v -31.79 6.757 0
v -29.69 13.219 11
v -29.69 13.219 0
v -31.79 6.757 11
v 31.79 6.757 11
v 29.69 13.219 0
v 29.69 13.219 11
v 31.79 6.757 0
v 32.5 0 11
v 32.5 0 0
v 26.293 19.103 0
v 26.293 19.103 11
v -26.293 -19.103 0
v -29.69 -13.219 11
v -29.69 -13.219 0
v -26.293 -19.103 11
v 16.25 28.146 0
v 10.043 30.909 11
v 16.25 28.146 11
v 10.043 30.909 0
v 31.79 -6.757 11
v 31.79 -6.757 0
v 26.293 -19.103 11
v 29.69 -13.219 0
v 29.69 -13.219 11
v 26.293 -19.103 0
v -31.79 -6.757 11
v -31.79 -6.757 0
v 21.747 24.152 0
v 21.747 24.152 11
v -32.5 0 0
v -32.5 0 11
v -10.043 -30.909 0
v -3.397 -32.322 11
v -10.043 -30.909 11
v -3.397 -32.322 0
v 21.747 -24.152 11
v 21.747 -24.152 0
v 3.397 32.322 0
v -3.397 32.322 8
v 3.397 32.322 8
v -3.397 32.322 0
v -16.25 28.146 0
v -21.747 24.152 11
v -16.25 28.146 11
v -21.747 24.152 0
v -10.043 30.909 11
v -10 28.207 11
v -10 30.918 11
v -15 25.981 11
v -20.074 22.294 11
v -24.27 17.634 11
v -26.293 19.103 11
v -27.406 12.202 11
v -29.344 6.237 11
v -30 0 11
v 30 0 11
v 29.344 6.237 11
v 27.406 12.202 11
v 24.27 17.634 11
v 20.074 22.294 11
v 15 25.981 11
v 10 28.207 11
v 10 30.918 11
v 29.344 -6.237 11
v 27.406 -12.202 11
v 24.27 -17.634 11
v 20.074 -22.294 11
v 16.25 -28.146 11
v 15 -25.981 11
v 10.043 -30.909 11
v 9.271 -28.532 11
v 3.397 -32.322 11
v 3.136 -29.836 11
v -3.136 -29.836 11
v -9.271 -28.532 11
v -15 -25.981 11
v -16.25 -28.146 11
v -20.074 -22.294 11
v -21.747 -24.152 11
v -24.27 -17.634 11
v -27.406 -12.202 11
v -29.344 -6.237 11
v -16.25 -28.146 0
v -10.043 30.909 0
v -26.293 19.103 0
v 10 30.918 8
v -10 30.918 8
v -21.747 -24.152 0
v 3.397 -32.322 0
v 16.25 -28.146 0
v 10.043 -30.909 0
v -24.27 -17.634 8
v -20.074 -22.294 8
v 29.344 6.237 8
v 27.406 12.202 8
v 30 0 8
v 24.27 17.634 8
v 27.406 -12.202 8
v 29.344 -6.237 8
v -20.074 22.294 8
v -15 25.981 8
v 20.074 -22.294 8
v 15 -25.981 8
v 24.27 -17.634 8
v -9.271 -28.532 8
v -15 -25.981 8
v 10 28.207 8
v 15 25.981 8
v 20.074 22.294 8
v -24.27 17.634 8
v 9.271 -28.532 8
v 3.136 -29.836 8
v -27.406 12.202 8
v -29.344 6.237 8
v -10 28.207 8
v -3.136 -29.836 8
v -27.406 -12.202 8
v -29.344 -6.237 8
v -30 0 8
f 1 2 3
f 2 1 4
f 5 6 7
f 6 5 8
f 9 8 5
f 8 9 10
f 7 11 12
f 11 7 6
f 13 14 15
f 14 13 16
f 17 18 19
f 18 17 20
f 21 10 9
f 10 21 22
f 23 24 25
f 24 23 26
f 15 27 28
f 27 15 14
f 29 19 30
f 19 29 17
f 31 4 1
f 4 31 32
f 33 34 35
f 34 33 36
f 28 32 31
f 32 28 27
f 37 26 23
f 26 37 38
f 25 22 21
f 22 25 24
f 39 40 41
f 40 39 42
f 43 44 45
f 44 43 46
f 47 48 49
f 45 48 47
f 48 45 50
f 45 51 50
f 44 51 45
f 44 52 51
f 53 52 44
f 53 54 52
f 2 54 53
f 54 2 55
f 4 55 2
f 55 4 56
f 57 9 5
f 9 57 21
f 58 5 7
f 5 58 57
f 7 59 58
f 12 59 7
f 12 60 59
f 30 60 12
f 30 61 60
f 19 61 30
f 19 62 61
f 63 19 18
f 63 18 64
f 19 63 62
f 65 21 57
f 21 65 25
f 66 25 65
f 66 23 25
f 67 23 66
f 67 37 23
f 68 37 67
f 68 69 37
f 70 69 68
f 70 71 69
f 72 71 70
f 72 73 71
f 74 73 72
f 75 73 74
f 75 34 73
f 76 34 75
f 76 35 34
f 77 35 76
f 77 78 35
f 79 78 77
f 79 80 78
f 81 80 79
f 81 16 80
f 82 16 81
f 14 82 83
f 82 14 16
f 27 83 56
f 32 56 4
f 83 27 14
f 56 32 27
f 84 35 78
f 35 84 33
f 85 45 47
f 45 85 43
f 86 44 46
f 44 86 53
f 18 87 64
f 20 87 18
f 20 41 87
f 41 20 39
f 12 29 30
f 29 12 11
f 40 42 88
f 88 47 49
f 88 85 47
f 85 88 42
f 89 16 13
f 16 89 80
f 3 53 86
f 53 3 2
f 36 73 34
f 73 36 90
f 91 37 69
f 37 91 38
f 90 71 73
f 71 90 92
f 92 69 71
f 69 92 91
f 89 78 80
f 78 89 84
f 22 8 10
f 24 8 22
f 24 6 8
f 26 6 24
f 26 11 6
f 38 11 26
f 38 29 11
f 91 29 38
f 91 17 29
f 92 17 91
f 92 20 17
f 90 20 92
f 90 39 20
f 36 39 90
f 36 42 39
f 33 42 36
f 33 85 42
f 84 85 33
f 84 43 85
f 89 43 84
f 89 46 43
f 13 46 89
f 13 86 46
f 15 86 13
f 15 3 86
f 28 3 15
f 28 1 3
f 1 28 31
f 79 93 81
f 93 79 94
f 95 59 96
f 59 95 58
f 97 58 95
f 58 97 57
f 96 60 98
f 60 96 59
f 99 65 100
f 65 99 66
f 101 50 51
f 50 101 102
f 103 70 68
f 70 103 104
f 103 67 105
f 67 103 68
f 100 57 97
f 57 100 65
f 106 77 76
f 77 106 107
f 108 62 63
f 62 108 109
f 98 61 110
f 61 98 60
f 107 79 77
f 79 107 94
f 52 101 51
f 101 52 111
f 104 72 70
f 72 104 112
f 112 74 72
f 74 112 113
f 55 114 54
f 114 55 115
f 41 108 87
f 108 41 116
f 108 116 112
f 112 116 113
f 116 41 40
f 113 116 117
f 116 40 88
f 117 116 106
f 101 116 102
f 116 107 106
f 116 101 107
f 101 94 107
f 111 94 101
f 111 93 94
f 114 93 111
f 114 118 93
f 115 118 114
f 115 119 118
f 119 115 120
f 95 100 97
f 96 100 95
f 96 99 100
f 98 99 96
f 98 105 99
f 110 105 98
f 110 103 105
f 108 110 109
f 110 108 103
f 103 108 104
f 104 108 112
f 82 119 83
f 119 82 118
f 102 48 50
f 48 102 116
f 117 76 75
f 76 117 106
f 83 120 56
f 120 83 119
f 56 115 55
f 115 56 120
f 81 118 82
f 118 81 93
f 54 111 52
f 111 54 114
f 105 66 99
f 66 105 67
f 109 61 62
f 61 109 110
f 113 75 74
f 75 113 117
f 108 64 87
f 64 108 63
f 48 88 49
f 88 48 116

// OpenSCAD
peg(60,65,20,8);
// peg(25,30,15,8,true);

module peg(id,od,opn,t,opn_both=false) {
    difference() {
        cylinder(h=t+3,r=od/2);
        translate([0,0,t]) cylinder(h=t+2,r=id/2);
        if (opn_both == true) {
            translate([-opn/2,-od/2,t]) #cube([opn,od,t]);
        } else {
            translate([-opn/2,0,t]) #cube([opn,od,t]);
        }
    }
}
